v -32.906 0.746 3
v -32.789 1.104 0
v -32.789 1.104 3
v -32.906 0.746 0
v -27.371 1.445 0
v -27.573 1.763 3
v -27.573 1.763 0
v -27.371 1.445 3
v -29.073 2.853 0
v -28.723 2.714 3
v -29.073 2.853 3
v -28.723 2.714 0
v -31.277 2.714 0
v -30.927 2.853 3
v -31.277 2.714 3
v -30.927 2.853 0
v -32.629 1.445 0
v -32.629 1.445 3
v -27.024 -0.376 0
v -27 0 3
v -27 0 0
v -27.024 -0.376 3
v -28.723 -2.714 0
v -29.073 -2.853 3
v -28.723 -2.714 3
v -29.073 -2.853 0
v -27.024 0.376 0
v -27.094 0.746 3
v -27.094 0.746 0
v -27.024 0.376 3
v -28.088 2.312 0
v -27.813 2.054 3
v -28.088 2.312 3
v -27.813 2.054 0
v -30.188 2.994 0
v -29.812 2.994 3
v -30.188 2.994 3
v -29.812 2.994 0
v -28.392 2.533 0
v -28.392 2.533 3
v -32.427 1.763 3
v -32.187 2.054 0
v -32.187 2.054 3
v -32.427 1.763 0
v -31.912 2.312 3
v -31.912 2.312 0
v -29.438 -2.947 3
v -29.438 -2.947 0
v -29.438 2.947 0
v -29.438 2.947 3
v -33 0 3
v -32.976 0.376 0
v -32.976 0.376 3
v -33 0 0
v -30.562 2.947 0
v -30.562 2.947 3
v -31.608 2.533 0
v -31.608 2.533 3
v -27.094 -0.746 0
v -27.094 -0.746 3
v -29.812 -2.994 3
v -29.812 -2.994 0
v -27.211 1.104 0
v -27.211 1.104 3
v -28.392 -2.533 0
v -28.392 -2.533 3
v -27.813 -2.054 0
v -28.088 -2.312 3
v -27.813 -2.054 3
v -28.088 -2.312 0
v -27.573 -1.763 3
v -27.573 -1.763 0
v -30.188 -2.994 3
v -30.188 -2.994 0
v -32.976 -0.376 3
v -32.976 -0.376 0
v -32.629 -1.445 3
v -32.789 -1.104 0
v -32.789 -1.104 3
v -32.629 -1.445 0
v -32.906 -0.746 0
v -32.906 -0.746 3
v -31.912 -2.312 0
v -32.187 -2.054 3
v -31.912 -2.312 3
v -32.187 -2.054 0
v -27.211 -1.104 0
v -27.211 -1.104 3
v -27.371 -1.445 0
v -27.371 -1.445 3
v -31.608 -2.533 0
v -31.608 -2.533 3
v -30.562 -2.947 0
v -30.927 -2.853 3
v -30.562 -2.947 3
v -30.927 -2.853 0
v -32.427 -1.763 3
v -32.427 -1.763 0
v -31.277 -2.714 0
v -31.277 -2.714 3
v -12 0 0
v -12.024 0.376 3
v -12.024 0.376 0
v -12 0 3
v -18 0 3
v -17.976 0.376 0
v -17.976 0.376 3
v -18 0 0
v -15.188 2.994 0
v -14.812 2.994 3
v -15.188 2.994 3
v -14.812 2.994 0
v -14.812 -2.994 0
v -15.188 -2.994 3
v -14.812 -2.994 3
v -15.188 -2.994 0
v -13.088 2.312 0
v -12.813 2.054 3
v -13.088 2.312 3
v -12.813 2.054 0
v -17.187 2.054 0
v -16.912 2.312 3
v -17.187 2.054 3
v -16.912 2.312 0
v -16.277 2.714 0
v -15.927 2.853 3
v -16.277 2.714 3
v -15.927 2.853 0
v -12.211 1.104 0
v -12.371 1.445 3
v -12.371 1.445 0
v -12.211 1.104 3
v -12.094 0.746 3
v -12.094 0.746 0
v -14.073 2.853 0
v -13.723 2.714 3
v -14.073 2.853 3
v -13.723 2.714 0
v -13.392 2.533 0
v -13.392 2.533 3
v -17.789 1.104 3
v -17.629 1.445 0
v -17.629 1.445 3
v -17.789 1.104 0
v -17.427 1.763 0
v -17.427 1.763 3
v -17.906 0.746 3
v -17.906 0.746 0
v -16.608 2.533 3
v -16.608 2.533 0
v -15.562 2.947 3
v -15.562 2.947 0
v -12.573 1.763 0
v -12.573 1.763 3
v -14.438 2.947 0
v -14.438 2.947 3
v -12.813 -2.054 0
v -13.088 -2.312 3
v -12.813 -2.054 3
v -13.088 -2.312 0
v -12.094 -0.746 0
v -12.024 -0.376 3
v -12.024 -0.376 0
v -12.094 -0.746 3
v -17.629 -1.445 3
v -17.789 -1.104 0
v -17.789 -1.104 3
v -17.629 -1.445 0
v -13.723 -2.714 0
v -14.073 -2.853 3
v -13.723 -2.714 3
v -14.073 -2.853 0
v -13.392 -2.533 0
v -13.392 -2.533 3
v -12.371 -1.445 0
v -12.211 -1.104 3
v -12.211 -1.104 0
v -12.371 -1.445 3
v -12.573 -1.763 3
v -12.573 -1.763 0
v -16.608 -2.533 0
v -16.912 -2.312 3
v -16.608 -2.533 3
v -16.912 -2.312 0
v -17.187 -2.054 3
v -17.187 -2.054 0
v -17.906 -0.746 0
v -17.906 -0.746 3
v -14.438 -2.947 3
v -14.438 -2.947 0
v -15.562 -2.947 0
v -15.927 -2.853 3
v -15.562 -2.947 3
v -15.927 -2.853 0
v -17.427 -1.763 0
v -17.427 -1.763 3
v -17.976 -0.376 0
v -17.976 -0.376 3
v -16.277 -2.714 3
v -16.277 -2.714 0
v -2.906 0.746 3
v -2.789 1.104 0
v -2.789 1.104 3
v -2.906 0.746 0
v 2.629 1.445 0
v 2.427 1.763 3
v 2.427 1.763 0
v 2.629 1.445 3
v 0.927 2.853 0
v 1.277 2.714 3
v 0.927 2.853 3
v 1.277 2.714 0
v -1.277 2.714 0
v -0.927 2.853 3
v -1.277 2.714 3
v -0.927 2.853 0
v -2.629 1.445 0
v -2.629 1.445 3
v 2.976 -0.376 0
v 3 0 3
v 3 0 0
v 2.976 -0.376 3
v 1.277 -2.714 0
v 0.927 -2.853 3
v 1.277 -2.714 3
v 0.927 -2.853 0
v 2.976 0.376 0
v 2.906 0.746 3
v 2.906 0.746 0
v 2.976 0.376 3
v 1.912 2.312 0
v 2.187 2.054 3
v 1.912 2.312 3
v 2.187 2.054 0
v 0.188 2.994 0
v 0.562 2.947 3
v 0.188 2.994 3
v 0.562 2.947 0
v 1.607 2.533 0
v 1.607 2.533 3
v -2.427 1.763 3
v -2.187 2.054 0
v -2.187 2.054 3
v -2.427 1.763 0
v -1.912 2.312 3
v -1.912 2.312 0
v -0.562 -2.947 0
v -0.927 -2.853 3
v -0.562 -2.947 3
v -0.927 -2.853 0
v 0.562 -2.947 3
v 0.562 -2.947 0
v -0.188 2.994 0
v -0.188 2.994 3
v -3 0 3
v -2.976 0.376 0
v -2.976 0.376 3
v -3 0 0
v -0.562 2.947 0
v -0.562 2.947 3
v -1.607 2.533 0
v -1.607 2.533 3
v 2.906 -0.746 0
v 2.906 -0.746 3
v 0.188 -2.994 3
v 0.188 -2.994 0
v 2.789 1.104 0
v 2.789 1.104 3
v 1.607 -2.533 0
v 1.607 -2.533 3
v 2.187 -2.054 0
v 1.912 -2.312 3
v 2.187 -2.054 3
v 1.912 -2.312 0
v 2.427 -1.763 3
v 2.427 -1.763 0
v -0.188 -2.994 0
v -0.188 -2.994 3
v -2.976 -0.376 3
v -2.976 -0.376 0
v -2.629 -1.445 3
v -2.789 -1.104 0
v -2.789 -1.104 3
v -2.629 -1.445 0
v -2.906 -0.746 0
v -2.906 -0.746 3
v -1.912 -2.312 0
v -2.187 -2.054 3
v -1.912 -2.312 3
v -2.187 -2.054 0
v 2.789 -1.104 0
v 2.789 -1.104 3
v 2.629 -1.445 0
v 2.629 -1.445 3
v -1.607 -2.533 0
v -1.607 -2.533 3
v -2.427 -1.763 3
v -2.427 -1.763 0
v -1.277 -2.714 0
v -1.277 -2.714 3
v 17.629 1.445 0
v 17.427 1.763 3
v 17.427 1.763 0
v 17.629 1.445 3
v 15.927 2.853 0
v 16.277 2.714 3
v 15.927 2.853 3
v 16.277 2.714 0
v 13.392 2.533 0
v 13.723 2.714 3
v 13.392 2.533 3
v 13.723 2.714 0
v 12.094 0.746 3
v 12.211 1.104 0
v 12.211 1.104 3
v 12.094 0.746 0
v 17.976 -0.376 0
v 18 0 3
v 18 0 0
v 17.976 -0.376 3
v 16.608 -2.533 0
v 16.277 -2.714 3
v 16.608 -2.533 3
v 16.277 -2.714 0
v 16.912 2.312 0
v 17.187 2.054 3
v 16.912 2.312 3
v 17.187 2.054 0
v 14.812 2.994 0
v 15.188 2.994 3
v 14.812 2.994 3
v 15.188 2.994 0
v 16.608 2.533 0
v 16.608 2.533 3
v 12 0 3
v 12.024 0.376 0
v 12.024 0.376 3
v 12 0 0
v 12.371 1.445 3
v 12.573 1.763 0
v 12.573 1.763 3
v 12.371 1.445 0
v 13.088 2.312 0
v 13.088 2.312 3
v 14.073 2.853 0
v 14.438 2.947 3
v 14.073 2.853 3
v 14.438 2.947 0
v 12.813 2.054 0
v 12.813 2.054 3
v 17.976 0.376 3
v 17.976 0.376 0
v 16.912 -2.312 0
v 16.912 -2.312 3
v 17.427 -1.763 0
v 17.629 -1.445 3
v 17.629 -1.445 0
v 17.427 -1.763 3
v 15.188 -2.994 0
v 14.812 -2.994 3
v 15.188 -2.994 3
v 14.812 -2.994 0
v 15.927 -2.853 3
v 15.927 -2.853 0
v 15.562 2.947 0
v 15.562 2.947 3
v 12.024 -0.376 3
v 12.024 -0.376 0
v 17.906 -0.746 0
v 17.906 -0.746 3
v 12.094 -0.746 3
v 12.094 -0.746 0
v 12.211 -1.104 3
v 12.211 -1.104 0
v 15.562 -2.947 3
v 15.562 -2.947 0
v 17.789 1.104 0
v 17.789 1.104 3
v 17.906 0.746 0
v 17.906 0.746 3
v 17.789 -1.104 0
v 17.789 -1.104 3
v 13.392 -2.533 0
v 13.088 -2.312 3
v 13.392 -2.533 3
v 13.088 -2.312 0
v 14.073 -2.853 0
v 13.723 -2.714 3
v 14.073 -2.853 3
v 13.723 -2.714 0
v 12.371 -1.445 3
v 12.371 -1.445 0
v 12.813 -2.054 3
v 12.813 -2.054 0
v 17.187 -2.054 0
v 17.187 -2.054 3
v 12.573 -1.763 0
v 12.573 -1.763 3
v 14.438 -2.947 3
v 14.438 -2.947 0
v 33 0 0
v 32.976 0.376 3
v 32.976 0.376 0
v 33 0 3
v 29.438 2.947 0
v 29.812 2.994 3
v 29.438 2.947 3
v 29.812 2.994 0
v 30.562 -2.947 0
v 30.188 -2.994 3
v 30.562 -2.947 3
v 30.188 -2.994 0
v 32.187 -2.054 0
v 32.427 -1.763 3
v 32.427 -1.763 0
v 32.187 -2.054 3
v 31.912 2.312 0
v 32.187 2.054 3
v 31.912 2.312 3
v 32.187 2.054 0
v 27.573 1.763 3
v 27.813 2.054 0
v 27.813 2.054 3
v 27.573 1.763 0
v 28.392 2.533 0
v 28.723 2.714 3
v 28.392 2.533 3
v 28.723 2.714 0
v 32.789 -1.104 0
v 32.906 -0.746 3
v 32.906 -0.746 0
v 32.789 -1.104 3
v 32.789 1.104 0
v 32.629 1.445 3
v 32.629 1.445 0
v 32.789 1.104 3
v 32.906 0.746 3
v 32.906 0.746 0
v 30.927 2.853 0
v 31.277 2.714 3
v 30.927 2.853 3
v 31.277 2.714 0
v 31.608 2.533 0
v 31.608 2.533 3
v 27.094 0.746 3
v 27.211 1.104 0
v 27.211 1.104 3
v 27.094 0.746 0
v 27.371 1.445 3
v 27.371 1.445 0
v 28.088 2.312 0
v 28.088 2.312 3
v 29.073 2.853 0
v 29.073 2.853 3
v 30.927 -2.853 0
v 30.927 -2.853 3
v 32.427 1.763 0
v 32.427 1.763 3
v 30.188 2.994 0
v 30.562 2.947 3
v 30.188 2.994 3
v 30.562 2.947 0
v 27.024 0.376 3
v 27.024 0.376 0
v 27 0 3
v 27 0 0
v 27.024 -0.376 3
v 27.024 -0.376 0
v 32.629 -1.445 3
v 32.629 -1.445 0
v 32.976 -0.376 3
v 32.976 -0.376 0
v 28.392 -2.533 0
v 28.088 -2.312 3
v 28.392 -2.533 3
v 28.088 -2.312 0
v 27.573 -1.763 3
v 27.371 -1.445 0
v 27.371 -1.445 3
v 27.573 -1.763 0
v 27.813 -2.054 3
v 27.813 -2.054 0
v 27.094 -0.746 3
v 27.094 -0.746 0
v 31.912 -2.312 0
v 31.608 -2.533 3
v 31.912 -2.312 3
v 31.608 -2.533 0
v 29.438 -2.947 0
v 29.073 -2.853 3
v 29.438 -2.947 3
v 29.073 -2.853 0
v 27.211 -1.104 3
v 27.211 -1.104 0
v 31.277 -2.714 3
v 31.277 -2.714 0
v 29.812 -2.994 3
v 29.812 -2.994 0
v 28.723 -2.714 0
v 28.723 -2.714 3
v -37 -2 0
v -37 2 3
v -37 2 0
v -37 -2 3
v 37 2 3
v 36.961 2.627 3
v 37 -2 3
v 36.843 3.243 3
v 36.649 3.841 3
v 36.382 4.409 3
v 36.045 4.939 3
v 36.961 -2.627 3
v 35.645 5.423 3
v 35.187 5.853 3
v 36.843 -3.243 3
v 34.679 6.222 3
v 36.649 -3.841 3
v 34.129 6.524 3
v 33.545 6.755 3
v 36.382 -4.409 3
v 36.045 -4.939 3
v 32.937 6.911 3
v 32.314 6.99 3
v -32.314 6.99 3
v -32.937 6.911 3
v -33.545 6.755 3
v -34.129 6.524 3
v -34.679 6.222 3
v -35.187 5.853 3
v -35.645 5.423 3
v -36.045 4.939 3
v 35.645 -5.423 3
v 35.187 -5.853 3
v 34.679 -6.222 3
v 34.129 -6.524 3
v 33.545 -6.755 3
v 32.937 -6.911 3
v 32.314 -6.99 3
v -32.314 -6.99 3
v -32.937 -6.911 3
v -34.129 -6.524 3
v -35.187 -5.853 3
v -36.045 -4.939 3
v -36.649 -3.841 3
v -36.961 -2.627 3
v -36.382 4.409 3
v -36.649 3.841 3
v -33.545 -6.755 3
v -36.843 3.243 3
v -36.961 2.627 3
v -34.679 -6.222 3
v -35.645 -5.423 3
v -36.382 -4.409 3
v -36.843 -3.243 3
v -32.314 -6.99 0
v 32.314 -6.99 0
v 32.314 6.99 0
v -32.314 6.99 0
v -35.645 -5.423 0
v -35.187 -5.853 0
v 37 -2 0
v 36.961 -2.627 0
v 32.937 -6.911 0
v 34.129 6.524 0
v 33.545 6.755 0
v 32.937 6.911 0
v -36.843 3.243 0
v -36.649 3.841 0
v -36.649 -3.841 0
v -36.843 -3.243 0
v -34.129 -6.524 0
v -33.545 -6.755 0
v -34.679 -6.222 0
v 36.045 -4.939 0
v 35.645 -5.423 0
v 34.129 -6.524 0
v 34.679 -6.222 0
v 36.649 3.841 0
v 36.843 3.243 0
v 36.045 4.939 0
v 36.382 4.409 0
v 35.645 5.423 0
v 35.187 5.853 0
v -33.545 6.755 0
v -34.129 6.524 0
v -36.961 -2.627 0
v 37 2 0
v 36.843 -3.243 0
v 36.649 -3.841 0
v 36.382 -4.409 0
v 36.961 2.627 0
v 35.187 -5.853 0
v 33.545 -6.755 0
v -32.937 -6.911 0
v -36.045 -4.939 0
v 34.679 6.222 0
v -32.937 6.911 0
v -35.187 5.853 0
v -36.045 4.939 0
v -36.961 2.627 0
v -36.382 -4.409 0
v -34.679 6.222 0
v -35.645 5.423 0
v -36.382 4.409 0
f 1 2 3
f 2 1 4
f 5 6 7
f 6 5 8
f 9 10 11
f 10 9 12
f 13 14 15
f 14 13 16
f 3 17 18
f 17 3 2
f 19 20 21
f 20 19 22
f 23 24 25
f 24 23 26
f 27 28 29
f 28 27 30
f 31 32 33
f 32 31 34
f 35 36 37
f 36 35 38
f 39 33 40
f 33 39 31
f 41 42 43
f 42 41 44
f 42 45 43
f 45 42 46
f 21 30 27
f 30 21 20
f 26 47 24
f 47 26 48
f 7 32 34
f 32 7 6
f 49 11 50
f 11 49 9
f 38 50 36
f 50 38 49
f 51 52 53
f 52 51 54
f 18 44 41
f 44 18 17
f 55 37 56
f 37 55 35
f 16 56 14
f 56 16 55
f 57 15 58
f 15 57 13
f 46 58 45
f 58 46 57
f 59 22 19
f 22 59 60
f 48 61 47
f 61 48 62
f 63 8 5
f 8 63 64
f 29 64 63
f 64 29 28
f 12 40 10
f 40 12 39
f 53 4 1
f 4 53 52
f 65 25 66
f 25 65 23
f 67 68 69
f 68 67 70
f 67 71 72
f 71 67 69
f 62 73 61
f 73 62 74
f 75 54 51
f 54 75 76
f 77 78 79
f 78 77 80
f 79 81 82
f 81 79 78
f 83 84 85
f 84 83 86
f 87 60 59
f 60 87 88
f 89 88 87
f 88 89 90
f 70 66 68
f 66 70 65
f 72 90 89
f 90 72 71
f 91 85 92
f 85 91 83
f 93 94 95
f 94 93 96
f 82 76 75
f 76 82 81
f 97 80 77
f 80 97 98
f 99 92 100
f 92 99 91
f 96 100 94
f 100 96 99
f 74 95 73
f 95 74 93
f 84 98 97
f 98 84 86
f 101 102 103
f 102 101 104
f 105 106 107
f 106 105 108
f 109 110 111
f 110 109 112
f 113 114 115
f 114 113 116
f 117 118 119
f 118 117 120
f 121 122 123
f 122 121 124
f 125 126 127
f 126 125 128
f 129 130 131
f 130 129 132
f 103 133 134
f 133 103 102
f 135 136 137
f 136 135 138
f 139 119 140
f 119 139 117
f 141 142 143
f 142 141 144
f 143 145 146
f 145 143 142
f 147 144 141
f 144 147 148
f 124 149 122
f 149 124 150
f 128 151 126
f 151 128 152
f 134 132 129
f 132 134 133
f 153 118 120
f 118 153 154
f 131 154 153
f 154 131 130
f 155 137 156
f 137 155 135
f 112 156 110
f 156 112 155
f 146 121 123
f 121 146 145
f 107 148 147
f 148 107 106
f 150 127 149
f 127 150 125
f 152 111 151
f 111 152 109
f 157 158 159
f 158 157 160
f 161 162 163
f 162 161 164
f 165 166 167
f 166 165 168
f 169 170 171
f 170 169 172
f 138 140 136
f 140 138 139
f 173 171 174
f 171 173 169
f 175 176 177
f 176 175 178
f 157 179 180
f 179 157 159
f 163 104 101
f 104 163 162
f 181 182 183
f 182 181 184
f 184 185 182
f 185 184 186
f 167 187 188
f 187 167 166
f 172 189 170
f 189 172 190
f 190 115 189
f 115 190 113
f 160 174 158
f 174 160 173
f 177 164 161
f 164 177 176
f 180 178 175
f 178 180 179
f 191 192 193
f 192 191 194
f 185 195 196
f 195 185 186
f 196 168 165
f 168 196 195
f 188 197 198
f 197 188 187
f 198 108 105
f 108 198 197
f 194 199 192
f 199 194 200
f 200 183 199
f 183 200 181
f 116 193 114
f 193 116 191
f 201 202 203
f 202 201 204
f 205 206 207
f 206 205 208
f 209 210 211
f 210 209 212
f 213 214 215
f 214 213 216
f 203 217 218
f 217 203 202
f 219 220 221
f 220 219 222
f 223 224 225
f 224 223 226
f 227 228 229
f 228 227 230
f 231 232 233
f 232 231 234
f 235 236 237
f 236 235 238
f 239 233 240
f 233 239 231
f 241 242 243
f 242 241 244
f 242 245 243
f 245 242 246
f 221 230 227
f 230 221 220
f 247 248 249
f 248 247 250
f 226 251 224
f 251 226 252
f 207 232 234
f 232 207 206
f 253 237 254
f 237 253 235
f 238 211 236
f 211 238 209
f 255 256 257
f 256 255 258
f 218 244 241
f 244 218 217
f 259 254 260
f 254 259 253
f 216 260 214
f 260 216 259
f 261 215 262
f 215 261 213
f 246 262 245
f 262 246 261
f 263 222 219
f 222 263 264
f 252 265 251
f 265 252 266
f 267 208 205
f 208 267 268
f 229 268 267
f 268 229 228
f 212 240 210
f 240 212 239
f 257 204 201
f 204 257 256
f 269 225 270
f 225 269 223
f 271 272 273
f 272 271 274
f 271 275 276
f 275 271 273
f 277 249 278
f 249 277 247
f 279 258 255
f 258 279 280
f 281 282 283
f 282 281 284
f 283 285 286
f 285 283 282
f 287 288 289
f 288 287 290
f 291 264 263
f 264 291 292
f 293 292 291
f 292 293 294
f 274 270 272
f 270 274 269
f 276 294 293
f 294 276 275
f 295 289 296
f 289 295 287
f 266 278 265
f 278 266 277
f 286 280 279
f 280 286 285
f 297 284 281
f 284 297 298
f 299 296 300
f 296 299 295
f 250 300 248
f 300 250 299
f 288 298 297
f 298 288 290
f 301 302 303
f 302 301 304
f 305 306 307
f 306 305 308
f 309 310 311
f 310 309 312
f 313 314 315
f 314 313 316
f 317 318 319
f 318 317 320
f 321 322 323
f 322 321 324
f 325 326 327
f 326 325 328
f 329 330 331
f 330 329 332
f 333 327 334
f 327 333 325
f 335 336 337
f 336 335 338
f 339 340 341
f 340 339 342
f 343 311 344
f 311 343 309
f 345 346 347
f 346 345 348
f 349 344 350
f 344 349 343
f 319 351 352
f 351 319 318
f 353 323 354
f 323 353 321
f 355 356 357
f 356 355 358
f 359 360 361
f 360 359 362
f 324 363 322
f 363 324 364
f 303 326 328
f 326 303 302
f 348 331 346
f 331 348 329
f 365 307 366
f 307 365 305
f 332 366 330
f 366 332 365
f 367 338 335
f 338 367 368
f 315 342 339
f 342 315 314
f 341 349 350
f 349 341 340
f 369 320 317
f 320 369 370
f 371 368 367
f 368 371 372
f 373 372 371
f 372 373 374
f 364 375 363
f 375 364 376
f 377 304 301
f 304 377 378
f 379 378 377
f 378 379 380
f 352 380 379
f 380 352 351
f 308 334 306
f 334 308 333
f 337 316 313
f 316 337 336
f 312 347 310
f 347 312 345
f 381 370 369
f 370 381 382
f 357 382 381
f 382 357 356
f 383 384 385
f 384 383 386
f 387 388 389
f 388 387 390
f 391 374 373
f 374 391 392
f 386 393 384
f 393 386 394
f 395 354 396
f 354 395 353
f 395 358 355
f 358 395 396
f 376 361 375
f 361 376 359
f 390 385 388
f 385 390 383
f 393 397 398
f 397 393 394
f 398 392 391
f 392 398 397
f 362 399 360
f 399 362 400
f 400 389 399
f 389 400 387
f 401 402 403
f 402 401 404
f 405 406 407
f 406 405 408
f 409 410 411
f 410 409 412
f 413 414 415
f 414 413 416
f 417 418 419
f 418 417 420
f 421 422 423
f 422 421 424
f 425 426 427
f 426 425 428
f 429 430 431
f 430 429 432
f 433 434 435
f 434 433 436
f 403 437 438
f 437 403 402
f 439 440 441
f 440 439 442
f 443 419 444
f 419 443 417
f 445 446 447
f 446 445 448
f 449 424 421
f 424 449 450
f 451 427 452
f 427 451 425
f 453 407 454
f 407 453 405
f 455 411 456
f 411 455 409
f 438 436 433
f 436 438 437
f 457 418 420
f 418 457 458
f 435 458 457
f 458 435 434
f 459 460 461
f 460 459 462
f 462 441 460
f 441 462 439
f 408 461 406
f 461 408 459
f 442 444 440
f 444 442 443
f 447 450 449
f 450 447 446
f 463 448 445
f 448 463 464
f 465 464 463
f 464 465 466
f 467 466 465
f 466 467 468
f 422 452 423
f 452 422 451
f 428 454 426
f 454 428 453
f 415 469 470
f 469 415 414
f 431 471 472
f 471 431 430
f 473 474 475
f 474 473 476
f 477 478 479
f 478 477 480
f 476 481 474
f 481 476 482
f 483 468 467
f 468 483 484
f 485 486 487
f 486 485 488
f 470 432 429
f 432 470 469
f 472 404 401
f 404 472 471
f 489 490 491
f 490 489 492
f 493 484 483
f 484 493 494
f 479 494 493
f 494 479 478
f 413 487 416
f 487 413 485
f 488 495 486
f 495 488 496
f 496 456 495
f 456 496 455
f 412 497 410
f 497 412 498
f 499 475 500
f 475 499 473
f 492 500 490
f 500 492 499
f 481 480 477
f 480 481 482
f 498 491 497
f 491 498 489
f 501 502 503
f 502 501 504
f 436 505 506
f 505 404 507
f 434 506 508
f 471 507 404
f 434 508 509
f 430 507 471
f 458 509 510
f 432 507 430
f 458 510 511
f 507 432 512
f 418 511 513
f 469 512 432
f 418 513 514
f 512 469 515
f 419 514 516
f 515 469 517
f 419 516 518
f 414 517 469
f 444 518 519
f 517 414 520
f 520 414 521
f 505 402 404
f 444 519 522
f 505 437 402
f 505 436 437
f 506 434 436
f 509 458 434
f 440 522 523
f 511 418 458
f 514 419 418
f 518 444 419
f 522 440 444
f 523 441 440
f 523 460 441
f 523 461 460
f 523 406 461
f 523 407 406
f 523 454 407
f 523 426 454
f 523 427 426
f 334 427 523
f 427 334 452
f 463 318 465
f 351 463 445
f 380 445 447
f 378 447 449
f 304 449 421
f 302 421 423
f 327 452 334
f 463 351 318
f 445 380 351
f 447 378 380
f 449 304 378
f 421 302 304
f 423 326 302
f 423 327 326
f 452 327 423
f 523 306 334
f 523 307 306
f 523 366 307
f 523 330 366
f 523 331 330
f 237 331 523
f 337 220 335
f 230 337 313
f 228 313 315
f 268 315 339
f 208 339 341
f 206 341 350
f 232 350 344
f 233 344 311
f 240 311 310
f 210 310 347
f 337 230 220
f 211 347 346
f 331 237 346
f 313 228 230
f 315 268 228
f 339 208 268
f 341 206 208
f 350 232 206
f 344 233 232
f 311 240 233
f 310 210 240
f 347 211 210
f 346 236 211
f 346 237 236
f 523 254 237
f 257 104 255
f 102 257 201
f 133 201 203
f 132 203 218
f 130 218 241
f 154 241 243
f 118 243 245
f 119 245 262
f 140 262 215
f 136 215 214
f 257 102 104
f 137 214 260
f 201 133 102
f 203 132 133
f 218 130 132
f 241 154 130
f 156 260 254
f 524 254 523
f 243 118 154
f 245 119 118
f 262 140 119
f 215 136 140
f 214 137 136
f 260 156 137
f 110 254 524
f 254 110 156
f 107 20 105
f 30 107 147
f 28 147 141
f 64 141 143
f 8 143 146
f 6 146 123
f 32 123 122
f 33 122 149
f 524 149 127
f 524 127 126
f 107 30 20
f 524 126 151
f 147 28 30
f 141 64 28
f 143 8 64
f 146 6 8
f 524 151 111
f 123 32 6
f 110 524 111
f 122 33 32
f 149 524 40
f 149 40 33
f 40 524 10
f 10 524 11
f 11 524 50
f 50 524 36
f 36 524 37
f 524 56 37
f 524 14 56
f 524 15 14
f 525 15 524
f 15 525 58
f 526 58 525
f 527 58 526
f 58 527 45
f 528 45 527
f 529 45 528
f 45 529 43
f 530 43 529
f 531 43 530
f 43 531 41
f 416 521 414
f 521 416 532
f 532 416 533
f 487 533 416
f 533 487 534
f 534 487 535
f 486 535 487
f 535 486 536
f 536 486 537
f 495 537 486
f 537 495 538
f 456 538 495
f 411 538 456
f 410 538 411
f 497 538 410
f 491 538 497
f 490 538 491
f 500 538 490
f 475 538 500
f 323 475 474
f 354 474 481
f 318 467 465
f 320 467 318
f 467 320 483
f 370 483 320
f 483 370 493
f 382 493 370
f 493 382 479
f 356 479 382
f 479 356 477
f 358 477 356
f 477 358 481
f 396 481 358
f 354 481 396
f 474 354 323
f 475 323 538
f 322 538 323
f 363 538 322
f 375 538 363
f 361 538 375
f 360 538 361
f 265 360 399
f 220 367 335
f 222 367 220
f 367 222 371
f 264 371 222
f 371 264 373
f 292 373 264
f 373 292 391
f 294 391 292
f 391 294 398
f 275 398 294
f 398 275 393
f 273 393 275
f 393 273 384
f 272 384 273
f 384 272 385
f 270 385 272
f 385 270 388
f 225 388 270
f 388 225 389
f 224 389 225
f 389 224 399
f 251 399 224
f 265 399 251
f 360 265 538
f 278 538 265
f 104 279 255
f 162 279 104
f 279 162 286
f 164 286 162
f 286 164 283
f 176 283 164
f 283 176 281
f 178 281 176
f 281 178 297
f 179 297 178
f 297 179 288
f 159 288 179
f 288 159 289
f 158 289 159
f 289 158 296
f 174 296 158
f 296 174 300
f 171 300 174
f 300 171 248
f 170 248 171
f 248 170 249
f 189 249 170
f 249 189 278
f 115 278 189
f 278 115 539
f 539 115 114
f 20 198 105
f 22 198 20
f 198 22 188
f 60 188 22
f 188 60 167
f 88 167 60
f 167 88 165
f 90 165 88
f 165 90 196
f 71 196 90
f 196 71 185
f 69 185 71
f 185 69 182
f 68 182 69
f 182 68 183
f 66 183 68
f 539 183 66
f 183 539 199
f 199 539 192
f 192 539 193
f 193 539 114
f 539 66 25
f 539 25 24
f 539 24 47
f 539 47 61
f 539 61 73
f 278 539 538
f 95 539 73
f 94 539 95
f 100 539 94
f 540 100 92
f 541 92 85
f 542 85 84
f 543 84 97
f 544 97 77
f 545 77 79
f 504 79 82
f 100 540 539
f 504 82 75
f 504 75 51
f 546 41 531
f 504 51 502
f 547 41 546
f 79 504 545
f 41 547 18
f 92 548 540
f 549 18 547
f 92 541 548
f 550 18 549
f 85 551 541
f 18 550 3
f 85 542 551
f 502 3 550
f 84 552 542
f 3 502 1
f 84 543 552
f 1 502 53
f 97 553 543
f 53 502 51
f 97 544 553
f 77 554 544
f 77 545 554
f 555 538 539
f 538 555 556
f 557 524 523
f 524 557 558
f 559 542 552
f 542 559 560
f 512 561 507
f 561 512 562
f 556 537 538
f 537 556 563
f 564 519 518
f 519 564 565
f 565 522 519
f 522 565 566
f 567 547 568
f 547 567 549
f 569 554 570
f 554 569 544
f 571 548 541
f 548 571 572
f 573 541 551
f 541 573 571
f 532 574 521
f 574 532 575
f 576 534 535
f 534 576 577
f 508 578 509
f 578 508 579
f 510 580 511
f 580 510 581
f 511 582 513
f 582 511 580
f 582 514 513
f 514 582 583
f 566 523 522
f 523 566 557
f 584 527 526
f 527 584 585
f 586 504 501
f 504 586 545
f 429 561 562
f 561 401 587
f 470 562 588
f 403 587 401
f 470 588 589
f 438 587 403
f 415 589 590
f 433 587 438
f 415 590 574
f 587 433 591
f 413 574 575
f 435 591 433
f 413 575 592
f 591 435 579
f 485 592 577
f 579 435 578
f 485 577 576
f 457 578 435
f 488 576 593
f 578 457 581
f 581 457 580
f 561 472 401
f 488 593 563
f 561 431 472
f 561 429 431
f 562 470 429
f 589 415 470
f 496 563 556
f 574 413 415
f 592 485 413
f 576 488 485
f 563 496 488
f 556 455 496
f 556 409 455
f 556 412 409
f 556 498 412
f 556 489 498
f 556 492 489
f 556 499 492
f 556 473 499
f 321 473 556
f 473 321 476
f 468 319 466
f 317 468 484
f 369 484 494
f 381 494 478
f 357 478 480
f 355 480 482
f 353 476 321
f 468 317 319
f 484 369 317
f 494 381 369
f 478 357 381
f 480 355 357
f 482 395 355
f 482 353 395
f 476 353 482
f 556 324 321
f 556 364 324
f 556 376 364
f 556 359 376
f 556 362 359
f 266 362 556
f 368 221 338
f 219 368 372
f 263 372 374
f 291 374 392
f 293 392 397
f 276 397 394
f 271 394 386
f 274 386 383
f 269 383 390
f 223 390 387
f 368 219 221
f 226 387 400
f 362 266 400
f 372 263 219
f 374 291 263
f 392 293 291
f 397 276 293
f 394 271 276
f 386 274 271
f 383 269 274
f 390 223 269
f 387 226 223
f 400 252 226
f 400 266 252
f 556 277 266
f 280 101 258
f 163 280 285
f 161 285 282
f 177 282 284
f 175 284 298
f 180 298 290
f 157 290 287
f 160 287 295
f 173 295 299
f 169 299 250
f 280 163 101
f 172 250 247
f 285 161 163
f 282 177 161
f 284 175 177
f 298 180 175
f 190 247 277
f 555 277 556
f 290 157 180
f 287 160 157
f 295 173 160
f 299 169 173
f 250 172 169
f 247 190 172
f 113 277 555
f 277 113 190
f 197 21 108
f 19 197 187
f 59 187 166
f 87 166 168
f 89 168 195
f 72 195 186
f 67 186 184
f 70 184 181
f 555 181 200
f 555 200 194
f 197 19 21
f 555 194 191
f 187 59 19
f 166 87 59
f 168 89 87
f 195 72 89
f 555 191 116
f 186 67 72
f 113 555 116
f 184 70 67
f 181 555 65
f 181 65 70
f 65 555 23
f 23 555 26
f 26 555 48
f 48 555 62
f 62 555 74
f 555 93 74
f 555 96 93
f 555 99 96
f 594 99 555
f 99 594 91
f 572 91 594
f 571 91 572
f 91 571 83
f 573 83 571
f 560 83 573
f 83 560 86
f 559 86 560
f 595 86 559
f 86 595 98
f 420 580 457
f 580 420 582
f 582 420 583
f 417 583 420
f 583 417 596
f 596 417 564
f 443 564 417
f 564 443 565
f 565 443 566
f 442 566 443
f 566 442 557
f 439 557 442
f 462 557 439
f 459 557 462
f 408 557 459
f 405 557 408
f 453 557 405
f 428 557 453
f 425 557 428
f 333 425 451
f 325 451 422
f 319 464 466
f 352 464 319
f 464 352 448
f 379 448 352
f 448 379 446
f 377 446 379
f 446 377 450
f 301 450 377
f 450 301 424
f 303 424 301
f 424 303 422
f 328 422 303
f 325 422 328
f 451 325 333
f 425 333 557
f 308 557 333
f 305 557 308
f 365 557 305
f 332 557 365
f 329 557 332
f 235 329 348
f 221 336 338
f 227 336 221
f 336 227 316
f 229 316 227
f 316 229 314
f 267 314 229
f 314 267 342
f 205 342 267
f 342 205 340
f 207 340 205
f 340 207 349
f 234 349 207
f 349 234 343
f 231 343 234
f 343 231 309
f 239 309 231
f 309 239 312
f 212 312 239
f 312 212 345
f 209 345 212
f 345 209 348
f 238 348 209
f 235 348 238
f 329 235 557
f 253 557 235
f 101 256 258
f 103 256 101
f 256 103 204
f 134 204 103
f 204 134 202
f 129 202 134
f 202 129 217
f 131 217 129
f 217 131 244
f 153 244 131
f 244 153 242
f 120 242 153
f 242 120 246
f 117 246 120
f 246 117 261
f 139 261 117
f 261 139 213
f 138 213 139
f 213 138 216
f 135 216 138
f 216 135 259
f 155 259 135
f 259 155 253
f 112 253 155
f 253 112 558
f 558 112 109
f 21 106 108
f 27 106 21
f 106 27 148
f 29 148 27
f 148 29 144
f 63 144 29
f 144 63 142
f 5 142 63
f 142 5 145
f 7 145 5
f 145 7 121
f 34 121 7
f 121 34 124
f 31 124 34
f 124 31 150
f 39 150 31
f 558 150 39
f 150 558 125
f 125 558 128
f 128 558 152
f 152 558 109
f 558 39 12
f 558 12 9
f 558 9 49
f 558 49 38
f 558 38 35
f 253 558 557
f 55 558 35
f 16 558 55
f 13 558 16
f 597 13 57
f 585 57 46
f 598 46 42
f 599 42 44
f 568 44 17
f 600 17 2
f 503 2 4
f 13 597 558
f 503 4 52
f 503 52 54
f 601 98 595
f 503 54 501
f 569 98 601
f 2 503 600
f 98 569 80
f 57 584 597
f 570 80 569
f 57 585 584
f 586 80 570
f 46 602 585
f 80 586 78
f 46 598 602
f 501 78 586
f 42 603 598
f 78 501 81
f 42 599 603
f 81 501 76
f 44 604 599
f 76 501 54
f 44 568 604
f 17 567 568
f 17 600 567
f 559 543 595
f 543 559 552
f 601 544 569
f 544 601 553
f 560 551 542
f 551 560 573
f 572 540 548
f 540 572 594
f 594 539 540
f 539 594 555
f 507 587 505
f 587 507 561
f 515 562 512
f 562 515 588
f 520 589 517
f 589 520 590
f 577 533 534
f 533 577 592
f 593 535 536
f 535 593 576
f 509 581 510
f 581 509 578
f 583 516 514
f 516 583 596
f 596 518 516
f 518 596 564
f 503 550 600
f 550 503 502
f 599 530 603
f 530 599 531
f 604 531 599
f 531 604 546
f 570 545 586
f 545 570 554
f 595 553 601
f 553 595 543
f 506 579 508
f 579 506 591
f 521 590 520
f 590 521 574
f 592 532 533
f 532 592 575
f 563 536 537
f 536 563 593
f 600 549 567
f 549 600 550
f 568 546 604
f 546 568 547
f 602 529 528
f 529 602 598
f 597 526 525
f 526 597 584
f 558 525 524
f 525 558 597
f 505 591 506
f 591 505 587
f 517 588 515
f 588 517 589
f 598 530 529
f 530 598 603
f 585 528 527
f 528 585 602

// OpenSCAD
$fn = 50;


difference() {
	union() {
		translate(v = [0, 0, 0]) {
			rotate(a = [0, 0, 0]) {
				hull() {
					translate(v = [-32.0000000000, 2.0000000000, 0]) {
						rotate(a = [0, 0, 0]) {
							translate(v = [0, 0, 0]) {
								rotate(a = [0, 0, 0]) {
									cylinder(h = 3, r = 5);
								}
							}
						}
					}
					translate(v = [32.0000000000, 2.0000000000, 0]) {
						rotate(a = [0, 0, 0]) {
							translate(v = [0, 0, 0]) {
								rotate(a = [0, 0, 0]) {
									cylinder(h = 3, r = 5);
								}
							}
						}
					}
					translate(v = [-32.0000000000, -2.0000000000, 0]) {
						rotate(a = [0, 0, 0]) {
							translate(v = [0, 0, 0]) {
								rotate(a = [0, 0, 0]) {
									cylinder(h = 3, r = 5);
								}
							}
						}
					}
					translate(v = [32.0000000000, -2.0000000000, 0]) {
						rotate(a = [0, 0, 0]) {
							translate(v = [0, 0, 0]) {
								rotate(a = [0, 0, 0]) {
									cylinder(h = 3, r = 5);
								}
							}
						}
					}
				}
			}
		}
	}
	union() {
		translate(v = [-30.0000000000, 0.0000000000, 0]) {
			rotate(a = [0, 0, 0]) {
				translate(v = [0, 0, -50]) {
					rotate(a = [0, 0, 0]) {
						cylinder(h = 100, r = 3.0000000000);
					}
				}
			}
		}
		translate(v = [-15.0000000000, 0.0000000000, 0]) {
			rotate(a = [0, 0, 0]) {
				translate(v = [0, 0, -50]) {
					rotate(a = [0, 0, 0]) {
						cylinder(h = 100, r = 3.0000000000);
					}
				}
			}
		}
		translate(v = [0.0000000000, 0.0000000000, 0]) {
			rotate(a = [0, 0, 0]) {
				translate(v = [0, 0, -50]) {
					rotate(a = [0, 0, 0]) {
						cylinder(h = 100, r = 3.0000000000);
					}
				}
			}
		}
		translate(v = [15.0000000000, 0.0000000000, 0]) {
			rotate(a = [0, 0, 0]) {
				translate(v = [0, 0, -50]) {
					rotate(a = [0, 0, 0]) {
						cylinder(h = 100, r = 3.0000000000);
					}
				}
			}
		}
		translate(v = [30.0000000000, 0.0000000000, 0]) {
			rotate(a = [0, 0, 0]) {
				translate(v = [0, 0, -50]) {
					rotate(a = [0, 0, 0]) {
						cylinder(h = 100, r = 3.0000000000);
					}
				}
			}
		}
	}
}
